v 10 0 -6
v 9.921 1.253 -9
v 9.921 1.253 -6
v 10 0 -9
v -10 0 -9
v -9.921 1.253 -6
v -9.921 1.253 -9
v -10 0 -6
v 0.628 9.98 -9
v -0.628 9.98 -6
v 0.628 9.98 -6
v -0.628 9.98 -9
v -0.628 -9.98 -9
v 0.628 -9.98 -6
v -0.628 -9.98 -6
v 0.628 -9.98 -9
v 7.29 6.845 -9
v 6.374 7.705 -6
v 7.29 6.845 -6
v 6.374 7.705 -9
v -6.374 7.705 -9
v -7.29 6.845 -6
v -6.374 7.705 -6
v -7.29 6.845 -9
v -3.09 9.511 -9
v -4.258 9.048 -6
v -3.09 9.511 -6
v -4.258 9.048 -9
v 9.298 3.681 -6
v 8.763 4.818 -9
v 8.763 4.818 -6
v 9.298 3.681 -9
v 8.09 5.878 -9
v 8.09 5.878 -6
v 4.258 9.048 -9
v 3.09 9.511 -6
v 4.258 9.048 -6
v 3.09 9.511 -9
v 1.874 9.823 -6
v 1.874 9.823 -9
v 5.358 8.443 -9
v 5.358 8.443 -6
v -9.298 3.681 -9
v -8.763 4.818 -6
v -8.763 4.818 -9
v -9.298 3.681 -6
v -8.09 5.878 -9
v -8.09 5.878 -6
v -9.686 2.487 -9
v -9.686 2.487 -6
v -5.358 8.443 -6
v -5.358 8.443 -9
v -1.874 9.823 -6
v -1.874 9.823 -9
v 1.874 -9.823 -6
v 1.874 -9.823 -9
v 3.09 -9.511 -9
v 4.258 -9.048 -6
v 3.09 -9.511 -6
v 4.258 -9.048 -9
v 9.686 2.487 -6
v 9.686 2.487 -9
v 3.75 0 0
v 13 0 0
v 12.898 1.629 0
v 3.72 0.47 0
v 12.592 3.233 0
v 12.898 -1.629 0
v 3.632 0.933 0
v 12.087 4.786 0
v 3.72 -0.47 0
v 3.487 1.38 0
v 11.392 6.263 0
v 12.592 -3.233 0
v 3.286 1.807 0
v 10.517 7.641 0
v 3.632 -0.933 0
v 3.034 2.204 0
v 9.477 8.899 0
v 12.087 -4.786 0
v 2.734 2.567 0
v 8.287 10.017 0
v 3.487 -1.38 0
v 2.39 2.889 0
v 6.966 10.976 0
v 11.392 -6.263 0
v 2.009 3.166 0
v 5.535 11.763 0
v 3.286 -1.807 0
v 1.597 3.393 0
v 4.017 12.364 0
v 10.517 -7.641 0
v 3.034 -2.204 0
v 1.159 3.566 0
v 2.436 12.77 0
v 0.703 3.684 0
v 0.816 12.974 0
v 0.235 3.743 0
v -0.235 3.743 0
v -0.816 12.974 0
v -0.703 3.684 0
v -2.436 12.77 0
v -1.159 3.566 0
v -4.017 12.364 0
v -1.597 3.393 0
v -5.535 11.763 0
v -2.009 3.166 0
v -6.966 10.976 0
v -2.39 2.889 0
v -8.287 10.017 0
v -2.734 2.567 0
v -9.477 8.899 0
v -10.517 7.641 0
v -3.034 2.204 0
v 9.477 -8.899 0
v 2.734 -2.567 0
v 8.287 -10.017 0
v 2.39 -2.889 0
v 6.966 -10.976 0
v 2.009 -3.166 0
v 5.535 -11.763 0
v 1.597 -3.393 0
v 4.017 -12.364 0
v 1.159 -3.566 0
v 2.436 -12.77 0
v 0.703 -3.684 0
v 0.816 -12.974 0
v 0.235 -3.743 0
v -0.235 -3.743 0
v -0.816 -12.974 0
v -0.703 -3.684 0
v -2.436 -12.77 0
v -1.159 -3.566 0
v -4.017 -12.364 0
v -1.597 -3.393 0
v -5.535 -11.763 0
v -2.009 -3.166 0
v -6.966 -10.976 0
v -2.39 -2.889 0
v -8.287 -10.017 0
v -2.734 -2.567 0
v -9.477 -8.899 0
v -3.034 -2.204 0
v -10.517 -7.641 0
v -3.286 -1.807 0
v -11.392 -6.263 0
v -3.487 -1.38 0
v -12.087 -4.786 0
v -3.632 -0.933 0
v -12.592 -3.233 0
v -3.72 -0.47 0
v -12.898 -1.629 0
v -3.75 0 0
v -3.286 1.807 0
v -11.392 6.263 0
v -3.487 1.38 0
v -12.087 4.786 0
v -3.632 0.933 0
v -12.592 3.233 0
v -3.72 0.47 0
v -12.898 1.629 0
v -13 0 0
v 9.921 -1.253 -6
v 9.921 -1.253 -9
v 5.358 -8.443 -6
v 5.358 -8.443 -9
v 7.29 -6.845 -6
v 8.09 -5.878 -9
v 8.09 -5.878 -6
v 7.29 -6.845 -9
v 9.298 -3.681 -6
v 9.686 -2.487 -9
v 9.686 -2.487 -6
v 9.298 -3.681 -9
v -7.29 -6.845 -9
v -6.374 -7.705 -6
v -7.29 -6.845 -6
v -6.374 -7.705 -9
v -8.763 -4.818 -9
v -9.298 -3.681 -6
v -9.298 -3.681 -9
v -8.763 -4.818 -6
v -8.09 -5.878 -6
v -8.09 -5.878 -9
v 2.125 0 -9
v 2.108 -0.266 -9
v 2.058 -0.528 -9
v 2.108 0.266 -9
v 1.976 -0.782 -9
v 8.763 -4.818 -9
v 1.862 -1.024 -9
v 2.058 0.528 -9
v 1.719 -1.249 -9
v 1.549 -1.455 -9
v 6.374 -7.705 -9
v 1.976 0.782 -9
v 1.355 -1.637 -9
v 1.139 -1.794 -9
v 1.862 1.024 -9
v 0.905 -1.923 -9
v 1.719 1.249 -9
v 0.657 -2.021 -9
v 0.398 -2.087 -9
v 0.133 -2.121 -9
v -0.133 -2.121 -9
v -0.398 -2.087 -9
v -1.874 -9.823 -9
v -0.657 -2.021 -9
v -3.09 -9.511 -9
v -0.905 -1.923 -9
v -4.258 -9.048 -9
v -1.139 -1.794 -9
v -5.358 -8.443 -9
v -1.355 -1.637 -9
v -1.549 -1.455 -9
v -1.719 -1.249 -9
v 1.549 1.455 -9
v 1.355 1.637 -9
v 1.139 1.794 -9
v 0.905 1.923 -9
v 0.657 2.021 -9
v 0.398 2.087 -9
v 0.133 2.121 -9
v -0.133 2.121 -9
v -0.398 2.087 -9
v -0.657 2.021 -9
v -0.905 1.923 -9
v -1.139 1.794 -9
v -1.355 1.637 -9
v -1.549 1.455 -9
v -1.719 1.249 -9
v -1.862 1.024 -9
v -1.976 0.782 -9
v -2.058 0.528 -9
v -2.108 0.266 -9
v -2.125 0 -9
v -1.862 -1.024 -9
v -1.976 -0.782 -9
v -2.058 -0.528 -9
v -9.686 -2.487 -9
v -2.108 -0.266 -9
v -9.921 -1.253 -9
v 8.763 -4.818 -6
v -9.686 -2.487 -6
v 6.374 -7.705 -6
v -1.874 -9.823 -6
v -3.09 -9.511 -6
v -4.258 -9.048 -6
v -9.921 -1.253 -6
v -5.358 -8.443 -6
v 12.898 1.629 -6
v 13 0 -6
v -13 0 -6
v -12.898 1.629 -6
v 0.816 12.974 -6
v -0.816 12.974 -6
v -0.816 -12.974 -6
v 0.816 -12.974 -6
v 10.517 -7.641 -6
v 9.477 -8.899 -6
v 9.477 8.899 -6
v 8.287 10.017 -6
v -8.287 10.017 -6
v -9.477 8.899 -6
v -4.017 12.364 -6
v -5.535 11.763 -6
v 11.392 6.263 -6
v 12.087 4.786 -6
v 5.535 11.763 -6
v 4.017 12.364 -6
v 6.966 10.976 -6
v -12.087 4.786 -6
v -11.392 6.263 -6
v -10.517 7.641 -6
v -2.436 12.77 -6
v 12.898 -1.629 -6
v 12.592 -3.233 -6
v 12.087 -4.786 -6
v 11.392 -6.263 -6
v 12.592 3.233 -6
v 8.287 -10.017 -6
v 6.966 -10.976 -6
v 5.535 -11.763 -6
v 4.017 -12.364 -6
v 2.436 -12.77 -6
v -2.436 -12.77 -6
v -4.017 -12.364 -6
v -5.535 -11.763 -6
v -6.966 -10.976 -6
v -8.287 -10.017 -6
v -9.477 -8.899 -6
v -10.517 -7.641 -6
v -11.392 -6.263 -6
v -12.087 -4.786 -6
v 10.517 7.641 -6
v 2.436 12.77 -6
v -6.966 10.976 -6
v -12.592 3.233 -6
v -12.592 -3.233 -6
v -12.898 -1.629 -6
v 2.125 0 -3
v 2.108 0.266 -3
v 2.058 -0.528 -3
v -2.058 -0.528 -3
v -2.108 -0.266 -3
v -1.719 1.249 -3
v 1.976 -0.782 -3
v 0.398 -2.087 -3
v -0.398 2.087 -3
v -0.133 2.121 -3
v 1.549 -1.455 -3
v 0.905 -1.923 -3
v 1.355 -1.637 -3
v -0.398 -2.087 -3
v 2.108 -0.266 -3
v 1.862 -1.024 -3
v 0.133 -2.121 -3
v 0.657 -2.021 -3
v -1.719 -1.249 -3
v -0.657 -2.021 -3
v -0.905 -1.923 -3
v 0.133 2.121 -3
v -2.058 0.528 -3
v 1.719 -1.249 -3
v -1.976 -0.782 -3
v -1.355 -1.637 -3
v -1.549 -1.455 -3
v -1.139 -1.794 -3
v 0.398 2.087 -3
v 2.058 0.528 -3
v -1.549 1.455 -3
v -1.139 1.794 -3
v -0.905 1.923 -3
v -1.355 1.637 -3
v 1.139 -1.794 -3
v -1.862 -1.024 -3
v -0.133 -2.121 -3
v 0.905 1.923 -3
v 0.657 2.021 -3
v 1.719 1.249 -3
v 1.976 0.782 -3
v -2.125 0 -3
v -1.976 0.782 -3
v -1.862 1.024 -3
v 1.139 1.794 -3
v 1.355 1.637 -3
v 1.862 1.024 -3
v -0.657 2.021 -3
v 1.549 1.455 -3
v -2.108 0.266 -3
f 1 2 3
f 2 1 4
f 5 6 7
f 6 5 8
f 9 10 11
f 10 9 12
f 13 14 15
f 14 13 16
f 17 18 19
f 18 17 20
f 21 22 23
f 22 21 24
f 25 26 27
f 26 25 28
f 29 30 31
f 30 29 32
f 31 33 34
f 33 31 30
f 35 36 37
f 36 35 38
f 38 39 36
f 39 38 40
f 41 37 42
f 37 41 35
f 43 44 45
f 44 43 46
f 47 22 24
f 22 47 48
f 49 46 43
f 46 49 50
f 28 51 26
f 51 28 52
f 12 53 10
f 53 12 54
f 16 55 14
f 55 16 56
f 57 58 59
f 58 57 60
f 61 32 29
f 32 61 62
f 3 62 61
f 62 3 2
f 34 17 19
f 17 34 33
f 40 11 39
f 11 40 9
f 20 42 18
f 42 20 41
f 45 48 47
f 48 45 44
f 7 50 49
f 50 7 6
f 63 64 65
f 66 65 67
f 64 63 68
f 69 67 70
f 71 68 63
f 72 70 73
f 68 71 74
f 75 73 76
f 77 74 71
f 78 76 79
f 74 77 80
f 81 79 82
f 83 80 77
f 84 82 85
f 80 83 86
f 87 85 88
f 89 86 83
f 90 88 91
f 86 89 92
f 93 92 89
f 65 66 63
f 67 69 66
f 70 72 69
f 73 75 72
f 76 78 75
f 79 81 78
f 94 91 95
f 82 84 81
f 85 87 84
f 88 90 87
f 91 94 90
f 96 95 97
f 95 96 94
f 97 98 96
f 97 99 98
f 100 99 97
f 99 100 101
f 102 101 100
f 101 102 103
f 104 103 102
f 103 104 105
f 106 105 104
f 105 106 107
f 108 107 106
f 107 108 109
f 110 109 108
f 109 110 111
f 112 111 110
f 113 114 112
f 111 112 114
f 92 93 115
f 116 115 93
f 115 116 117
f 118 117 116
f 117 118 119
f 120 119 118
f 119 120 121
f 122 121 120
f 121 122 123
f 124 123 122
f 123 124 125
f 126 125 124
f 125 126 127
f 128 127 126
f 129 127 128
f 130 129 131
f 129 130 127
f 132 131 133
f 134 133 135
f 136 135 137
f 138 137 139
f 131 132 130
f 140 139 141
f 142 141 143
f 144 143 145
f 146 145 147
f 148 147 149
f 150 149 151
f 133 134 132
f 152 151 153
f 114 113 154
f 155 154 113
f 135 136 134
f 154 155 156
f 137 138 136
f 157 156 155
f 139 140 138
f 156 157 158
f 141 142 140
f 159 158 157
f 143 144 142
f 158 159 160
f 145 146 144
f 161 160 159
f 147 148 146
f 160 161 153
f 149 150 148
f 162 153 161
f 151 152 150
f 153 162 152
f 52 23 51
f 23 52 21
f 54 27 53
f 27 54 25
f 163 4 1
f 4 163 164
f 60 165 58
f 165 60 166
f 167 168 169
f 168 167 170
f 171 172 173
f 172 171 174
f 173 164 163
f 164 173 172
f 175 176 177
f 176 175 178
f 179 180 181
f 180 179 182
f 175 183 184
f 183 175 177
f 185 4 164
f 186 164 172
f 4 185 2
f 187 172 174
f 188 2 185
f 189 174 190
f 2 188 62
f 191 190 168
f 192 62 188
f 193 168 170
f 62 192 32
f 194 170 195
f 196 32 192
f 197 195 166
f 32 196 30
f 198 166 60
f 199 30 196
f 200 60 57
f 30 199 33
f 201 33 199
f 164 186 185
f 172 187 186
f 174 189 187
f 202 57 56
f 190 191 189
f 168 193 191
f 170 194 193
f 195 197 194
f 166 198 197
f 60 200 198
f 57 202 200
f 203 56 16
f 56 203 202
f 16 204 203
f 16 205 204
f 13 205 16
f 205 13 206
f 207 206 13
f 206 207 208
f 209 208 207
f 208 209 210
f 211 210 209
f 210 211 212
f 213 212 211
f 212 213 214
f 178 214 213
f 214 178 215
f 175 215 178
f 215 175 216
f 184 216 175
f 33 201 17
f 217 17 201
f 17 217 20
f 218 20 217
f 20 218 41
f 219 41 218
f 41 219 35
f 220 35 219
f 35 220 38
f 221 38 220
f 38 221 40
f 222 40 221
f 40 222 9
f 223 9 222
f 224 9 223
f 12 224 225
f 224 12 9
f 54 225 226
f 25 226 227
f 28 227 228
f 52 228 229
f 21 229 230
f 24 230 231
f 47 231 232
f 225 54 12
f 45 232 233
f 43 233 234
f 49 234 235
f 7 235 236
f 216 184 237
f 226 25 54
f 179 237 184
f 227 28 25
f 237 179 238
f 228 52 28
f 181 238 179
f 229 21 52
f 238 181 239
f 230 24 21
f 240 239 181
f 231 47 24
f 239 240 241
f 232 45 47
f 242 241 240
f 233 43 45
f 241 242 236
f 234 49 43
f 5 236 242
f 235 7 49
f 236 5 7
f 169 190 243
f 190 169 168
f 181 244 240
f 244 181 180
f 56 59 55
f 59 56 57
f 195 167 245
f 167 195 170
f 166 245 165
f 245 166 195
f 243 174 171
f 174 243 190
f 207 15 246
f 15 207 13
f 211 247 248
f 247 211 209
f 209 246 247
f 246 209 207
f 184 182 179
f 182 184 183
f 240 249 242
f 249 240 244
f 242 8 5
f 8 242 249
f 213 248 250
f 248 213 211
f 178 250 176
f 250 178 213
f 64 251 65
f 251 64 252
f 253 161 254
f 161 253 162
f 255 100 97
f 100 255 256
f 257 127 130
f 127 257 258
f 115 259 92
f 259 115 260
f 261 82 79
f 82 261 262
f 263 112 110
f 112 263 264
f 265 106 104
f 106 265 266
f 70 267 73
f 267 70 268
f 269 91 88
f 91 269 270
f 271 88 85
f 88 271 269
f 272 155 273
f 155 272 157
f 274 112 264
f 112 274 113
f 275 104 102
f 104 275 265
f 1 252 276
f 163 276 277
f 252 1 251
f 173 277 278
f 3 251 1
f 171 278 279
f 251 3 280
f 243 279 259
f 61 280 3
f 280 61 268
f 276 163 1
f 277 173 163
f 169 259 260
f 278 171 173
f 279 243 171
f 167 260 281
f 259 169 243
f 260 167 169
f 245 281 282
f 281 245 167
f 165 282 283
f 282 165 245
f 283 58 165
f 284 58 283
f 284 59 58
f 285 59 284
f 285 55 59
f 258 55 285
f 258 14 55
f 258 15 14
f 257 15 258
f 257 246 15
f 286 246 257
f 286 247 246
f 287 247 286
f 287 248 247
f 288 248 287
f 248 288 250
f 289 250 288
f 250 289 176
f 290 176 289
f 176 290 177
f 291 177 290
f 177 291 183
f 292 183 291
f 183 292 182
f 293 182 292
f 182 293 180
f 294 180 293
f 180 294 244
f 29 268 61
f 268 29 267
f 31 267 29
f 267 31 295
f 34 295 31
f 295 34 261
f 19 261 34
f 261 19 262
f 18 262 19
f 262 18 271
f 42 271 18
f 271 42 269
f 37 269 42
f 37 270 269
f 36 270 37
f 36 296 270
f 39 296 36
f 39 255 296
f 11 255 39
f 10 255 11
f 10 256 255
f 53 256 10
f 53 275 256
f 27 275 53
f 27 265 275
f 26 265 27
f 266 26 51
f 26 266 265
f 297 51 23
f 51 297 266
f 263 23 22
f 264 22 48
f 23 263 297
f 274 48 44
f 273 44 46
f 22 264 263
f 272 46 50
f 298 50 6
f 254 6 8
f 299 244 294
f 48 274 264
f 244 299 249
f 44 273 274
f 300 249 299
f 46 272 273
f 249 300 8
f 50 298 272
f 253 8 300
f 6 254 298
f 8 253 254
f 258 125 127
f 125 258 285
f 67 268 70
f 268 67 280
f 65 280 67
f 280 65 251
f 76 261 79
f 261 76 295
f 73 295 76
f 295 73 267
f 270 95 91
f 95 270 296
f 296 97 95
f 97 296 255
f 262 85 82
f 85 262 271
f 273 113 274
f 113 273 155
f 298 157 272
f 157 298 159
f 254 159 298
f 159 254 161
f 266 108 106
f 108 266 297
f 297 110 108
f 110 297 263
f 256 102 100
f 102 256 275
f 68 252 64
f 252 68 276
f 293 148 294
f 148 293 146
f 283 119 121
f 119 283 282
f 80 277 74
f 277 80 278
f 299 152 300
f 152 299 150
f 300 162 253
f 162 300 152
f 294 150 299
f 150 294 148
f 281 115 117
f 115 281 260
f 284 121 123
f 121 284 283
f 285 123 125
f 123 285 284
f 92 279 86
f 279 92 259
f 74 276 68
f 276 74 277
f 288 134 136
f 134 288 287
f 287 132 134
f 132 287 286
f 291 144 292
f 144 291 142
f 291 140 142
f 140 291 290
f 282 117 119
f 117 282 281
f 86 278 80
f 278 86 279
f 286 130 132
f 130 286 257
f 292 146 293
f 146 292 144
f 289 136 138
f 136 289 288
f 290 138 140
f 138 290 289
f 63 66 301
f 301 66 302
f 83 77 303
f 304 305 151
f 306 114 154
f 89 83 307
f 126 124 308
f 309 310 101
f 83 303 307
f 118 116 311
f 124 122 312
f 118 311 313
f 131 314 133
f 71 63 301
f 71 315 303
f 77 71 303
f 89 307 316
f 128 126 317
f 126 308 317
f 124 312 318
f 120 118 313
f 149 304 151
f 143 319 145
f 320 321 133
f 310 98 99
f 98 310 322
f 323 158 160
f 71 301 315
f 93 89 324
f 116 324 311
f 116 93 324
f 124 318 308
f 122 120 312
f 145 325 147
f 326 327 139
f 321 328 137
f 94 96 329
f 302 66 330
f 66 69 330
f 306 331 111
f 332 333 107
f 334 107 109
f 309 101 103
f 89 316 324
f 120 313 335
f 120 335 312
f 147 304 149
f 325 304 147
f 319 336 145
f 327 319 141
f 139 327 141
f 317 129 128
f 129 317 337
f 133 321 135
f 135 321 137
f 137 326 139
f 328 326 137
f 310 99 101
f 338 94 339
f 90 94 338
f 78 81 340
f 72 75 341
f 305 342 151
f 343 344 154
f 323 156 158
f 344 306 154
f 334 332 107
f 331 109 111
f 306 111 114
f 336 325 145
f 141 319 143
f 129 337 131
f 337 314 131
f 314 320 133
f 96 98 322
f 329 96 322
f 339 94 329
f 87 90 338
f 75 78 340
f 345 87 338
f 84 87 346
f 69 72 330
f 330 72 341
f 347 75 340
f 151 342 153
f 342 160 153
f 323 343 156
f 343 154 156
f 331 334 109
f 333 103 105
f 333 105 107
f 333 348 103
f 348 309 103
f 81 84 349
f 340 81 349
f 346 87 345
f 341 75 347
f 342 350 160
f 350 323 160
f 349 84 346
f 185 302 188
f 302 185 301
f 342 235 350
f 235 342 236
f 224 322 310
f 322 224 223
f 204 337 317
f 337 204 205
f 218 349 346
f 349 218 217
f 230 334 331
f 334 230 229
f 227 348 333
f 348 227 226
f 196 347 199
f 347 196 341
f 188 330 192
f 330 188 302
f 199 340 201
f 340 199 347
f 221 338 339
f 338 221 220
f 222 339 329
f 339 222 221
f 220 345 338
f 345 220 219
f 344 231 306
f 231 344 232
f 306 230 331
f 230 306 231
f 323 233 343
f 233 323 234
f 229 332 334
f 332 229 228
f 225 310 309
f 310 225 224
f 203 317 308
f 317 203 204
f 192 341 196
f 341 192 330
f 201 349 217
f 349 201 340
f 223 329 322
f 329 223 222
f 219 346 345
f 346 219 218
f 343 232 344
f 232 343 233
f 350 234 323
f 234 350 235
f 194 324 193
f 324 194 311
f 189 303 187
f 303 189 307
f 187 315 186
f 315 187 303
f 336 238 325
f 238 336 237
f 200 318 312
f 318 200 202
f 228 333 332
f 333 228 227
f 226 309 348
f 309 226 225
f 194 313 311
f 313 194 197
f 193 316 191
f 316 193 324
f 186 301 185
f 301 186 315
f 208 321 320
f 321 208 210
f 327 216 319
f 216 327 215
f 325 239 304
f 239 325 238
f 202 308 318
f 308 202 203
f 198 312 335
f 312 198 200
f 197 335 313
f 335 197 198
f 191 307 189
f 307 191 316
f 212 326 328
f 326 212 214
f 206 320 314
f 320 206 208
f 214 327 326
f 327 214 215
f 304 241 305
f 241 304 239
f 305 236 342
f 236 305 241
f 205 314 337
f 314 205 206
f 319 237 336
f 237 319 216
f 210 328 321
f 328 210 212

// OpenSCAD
$fn = 50;


difference() {
	union() {
		translate(v = [0, 0, -9.0000000000]) {
			cylinder(h = 9, r = 10.0000000000);
		}
		translate(v = [0, 0, -6.0000000000]) {
			cylinder(h = 6, r = 13.0000000000);
		}
	}
	union() {
		translate(v = [0, 0, 0]) {
			rotate(a = [0, 0, 0]) {
				difference() {
					union() {
						#translate(v = [0, 0, -9.0000000000]) {
							cylinder(h = 9, r = 2.0000000000);
						}
						#translate(v = [0, 0, -3]) {
							cylinder(h = 3, r1 = 2.1250000000, r2 = 3.7500000000);
						}
						#translate(v = [0, 0, -9.0000000000]) {
							cylinder(h = 9, r = 2.1250000000);
						}
						#translate(v = [0, 0, -9.0000000000]) {
							cylinder(h = 9, r = 2.0000000000);
						}
					}
					union();
				}
			}
		}
	}
}
